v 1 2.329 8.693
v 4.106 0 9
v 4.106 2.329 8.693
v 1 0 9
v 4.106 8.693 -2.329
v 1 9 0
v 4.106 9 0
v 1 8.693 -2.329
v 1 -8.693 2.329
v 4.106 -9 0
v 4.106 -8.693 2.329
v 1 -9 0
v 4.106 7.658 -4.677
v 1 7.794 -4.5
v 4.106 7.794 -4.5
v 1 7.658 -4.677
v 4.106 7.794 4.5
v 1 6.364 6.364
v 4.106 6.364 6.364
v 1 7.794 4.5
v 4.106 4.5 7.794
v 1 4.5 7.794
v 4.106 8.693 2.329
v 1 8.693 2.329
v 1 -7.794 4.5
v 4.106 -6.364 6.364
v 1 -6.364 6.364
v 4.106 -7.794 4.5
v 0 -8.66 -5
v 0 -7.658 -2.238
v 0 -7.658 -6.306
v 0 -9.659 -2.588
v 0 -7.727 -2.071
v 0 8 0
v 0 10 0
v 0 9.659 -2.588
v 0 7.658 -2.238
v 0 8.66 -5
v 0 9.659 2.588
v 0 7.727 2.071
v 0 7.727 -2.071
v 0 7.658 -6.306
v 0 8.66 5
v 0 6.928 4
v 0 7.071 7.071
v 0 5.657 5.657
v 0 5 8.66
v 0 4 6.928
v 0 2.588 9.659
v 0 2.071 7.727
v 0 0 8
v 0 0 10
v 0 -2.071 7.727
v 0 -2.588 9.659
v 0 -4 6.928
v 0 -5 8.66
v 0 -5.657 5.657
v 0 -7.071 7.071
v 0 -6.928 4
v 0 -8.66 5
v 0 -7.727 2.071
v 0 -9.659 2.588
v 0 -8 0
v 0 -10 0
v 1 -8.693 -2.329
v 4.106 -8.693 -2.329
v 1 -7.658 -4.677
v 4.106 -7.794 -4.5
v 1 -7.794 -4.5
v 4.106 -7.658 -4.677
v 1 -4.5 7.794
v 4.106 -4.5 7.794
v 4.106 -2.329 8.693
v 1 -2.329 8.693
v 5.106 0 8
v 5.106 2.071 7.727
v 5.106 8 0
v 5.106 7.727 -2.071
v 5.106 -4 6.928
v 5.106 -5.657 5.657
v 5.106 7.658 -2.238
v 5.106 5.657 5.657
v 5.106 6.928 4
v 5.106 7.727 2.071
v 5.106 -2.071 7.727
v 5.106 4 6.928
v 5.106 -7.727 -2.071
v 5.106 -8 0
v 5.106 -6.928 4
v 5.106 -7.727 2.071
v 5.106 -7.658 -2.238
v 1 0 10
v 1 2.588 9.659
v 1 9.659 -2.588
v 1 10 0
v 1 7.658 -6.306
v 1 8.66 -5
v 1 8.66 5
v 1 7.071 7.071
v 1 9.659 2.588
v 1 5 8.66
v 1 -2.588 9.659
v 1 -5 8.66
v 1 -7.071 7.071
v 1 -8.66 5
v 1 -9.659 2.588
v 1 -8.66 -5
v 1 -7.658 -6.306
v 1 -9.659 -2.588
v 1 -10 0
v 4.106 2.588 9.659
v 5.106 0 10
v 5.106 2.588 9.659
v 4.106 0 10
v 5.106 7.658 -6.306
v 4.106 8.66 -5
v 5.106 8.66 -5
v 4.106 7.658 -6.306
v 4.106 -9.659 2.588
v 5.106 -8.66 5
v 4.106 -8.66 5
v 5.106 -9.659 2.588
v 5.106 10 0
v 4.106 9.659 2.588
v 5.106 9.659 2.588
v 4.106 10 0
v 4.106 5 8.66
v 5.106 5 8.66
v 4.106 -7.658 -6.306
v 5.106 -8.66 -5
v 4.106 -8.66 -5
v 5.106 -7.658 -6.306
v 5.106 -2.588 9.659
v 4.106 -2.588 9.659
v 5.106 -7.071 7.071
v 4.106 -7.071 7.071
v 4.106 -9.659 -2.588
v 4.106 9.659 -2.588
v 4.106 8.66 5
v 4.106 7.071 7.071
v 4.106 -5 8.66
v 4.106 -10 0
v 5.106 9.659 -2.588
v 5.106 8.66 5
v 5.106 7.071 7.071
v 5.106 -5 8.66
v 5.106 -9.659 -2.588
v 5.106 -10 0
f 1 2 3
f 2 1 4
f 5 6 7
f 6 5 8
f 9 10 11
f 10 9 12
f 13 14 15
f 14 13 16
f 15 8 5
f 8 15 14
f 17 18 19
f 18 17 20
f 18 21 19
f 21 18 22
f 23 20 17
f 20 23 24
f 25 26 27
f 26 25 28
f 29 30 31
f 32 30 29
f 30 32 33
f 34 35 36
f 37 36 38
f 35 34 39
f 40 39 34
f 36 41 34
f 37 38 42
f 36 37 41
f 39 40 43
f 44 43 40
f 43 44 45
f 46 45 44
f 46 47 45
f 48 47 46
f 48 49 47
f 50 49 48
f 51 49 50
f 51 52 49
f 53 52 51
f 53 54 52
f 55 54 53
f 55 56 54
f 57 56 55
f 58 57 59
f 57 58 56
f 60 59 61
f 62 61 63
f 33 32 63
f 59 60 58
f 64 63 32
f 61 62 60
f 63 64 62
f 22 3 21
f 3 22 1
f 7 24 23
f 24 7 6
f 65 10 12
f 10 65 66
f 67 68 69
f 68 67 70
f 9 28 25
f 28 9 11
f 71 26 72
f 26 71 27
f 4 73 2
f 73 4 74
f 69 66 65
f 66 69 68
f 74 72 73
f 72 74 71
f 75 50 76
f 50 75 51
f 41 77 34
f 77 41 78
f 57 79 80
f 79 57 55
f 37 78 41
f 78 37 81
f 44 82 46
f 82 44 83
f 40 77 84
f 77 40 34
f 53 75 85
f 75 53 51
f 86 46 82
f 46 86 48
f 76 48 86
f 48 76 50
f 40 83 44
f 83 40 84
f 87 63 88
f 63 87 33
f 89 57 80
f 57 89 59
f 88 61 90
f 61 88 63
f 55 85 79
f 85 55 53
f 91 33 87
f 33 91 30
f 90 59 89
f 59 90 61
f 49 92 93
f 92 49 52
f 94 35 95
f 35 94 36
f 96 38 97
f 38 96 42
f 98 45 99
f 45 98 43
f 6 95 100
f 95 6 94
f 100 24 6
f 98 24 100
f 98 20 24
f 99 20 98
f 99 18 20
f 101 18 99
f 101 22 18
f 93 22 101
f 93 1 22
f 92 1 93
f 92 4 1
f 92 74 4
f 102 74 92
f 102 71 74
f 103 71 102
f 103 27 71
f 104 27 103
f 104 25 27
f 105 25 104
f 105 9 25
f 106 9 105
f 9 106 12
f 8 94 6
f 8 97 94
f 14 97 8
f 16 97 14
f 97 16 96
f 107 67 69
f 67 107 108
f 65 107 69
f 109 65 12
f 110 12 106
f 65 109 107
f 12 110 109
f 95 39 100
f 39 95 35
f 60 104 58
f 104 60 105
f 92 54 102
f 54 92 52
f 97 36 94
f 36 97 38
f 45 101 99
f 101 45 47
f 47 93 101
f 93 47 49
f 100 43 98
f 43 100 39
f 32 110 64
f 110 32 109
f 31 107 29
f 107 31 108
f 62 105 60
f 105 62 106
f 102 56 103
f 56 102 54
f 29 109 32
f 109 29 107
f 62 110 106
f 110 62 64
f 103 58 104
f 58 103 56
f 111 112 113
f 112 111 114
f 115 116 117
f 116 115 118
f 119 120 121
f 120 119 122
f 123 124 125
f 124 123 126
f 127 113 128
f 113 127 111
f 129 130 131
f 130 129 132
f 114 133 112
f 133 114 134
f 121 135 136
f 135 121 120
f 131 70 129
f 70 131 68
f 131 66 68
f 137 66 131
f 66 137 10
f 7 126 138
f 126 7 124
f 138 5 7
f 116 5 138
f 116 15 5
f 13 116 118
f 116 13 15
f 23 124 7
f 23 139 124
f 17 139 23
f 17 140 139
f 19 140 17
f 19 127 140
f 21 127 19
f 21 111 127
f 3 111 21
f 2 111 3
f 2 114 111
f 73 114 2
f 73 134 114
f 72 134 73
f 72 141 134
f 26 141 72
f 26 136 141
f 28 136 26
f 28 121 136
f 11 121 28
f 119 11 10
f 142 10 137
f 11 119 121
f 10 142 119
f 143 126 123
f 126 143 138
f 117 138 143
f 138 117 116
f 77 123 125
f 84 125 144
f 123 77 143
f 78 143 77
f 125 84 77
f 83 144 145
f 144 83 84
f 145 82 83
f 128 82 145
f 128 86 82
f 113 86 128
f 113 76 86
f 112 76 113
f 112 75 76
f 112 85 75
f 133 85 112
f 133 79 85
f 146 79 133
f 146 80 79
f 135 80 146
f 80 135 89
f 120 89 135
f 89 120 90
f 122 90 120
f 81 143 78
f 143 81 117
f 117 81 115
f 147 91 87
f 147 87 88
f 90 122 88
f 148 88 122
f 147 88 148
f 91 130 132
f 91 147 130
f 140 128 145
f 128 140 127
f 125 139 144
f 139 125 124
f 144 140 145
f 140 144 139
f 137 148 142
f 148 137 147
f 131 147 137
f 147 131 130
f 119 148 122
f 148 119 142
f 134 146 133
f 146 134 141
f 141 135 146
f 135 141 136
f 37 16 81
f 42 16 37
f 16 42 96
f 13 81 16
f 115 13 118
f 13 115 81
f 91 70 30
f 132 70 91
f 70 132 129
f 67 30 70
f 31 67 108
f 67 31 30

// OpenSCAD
// file: ../build_environments.scad
// build_environments.scad: modules to build level sections
//

module pool(diameter=10.0, wall_height=2.0, step_width=3.0, connections=[])
{
    difference() {
        union() {
        difference() {
            cylinder(h=0.5,r1=diameter+step_width,r2=diameter+step_width,$fn=48);
            translate([0,0,-0.1])
                cylinder(h=0.7,r1=diameter,r2=diameter,$fn=48);
        }
        difference() {
            cylinder(h=wall_height,r1=diameter+step_width+1.0,r2=diameter+step_width+1.0,$fn=48);
            translate([0,0,-0.1])
                cylinder(h=wall_height+0.2,r1=diameter+step_width,r2=diameter+step_width,$fn=48);
        }
        }
    
        for (c = connections)
        {
            rotate([0,90,0]) {
                angle = atan2(c[1],c[0]);
                rotate([-angle,0,0]) {
                    cylinder(h=diameter+5.0,r1=c[2],r2=c[2],$fn=48);
                }
            }
        }
    }
}

module straight(length=10.0, width=2.0, dy1=0.0, dy2=0.0, dz=0.0)
{
    dims = [0, 0, 0, 0, 0, (dz/length)];
    matrix = [
        [ 1, dims[0], dims[1], 0 ],
        [ dims[2], 1, dims[4], 0 ],
        [ dims[5], dims[3], 1, 0 ],
        [ 0, 0, 0, 1 ]
    ];
    multmatrix(matrix)
    difference() {
        translate([dy1,0,0])
        union() {
            rotate([0,90,0]) {
                difference() {
                    cylinder(h=(length-dy1-dy2),r1=width+1.0,r2=width+1.0,$fn=24);
                    translate([0,0,-0.1])
                        cylinder(h=(length-dy1-dy2+0.2),r1=width,r2=width,$fn=24);
                }
                difference() {
                    cylinder(h=1.0,r1=width+2.0,r2=width+2.0,$fn=24);
                    translate([0,0,-0.1])
                        cylinder(h=1.2,r1=width,r2=width,$fn=24);
                }
                translate([0,0,(length-dy1-dy2)-1.0]) {
                    difference() {
                        cylinder(h=1.0,r1=width+2.0,r2=width+2.0,$fn=24);
                        translate([0,0,-0.1])
                            cylinder(h=1.2,r1=width,r2=width,$fn=24);
                    }
                }
            }
        }
        translate([0,0,-(2*width+4.0)/2])
            cube([3*length,3*length,2*width+4.0],center=true);
    }
}

module curve(p0=[0,0], center=[0,0], dir=1, angle=0.0, width=2.0)
{
    radius = sqrt((p0[0]-center[0])*(p0[0]-center[0]) + (p0[1]-center[1])*(p0[1]-center[1]));
    if (dir == 0) {
        difference() {
            rotate([0,0,-90])
            difference() {
                rotate_extrude(angle = angle, convexity = 10, $fn=32)
                    translate([radius, 0, 0])
                        circle(r = width+1.0,$fn=24);
                rotate([0,0,-1.0])
                    rotate_extrude(angle = angle+2.0, convexity = 10, $fn=32)
                        translate([radius, 0, 0])
                            circle(r = width,$fn=24);
            }
            translate([0,0,-(2*width+4.0)/2])
                cube([5*radius,5*radius,2*width+4.0],center=true);
        }
    }
    else {
        difference() {
            rotate([0,0,90])
            difference() {
                rotate_extrude(angle = -angle, convexity = 10, $fn=32)
                    translate([radius, 0, 0])
                        circle(r = width+1.0,$fn=24);
                rotate([0,0,1.0])
                    rotate_extrude(angle = -angle-2.0, convexity = 10, $fn=32)
                        translate([radius, 0, 0])
                            circle(r = width,$fn=24);
            }
            translate([0,0,-(2*width+4.0)/2])
                cube([5*radius,5*radius,2*width+4.0],center=true);
        }
    }

}

// test pool
//pool(diameter=12.0000, wall_height=3.0000, step_width=3.0000, connections=[[0.0000,-26.0000,2.0000], [23.6074,0.0000,2.0000]]);

// test straight, slope
//straight(length=26.0000, width=2.0000, dy1=11.8322, dy2=6.7082, dz=0.0000);
//straight(length=29.1549, width=12.0000, dy1=0.0000, dy2=0.0000, dz=-15.0000);

// test curve
//curve(p0=[23.6074, 0.0000], center=[23.6074, 5.0000], dir=0, angle=60.1011, width=2.0000);
//curve(p0=[33.6426, 12.4219], center=[37.9771, 9.9295], dir=1, angle=120.4627, width=2.0000);
// main file
use <../build_environments.scad>;
straight(length=5.1055, width=8.0000, dy1=0.0000, dy2=0.0000, dz=0.0000);
